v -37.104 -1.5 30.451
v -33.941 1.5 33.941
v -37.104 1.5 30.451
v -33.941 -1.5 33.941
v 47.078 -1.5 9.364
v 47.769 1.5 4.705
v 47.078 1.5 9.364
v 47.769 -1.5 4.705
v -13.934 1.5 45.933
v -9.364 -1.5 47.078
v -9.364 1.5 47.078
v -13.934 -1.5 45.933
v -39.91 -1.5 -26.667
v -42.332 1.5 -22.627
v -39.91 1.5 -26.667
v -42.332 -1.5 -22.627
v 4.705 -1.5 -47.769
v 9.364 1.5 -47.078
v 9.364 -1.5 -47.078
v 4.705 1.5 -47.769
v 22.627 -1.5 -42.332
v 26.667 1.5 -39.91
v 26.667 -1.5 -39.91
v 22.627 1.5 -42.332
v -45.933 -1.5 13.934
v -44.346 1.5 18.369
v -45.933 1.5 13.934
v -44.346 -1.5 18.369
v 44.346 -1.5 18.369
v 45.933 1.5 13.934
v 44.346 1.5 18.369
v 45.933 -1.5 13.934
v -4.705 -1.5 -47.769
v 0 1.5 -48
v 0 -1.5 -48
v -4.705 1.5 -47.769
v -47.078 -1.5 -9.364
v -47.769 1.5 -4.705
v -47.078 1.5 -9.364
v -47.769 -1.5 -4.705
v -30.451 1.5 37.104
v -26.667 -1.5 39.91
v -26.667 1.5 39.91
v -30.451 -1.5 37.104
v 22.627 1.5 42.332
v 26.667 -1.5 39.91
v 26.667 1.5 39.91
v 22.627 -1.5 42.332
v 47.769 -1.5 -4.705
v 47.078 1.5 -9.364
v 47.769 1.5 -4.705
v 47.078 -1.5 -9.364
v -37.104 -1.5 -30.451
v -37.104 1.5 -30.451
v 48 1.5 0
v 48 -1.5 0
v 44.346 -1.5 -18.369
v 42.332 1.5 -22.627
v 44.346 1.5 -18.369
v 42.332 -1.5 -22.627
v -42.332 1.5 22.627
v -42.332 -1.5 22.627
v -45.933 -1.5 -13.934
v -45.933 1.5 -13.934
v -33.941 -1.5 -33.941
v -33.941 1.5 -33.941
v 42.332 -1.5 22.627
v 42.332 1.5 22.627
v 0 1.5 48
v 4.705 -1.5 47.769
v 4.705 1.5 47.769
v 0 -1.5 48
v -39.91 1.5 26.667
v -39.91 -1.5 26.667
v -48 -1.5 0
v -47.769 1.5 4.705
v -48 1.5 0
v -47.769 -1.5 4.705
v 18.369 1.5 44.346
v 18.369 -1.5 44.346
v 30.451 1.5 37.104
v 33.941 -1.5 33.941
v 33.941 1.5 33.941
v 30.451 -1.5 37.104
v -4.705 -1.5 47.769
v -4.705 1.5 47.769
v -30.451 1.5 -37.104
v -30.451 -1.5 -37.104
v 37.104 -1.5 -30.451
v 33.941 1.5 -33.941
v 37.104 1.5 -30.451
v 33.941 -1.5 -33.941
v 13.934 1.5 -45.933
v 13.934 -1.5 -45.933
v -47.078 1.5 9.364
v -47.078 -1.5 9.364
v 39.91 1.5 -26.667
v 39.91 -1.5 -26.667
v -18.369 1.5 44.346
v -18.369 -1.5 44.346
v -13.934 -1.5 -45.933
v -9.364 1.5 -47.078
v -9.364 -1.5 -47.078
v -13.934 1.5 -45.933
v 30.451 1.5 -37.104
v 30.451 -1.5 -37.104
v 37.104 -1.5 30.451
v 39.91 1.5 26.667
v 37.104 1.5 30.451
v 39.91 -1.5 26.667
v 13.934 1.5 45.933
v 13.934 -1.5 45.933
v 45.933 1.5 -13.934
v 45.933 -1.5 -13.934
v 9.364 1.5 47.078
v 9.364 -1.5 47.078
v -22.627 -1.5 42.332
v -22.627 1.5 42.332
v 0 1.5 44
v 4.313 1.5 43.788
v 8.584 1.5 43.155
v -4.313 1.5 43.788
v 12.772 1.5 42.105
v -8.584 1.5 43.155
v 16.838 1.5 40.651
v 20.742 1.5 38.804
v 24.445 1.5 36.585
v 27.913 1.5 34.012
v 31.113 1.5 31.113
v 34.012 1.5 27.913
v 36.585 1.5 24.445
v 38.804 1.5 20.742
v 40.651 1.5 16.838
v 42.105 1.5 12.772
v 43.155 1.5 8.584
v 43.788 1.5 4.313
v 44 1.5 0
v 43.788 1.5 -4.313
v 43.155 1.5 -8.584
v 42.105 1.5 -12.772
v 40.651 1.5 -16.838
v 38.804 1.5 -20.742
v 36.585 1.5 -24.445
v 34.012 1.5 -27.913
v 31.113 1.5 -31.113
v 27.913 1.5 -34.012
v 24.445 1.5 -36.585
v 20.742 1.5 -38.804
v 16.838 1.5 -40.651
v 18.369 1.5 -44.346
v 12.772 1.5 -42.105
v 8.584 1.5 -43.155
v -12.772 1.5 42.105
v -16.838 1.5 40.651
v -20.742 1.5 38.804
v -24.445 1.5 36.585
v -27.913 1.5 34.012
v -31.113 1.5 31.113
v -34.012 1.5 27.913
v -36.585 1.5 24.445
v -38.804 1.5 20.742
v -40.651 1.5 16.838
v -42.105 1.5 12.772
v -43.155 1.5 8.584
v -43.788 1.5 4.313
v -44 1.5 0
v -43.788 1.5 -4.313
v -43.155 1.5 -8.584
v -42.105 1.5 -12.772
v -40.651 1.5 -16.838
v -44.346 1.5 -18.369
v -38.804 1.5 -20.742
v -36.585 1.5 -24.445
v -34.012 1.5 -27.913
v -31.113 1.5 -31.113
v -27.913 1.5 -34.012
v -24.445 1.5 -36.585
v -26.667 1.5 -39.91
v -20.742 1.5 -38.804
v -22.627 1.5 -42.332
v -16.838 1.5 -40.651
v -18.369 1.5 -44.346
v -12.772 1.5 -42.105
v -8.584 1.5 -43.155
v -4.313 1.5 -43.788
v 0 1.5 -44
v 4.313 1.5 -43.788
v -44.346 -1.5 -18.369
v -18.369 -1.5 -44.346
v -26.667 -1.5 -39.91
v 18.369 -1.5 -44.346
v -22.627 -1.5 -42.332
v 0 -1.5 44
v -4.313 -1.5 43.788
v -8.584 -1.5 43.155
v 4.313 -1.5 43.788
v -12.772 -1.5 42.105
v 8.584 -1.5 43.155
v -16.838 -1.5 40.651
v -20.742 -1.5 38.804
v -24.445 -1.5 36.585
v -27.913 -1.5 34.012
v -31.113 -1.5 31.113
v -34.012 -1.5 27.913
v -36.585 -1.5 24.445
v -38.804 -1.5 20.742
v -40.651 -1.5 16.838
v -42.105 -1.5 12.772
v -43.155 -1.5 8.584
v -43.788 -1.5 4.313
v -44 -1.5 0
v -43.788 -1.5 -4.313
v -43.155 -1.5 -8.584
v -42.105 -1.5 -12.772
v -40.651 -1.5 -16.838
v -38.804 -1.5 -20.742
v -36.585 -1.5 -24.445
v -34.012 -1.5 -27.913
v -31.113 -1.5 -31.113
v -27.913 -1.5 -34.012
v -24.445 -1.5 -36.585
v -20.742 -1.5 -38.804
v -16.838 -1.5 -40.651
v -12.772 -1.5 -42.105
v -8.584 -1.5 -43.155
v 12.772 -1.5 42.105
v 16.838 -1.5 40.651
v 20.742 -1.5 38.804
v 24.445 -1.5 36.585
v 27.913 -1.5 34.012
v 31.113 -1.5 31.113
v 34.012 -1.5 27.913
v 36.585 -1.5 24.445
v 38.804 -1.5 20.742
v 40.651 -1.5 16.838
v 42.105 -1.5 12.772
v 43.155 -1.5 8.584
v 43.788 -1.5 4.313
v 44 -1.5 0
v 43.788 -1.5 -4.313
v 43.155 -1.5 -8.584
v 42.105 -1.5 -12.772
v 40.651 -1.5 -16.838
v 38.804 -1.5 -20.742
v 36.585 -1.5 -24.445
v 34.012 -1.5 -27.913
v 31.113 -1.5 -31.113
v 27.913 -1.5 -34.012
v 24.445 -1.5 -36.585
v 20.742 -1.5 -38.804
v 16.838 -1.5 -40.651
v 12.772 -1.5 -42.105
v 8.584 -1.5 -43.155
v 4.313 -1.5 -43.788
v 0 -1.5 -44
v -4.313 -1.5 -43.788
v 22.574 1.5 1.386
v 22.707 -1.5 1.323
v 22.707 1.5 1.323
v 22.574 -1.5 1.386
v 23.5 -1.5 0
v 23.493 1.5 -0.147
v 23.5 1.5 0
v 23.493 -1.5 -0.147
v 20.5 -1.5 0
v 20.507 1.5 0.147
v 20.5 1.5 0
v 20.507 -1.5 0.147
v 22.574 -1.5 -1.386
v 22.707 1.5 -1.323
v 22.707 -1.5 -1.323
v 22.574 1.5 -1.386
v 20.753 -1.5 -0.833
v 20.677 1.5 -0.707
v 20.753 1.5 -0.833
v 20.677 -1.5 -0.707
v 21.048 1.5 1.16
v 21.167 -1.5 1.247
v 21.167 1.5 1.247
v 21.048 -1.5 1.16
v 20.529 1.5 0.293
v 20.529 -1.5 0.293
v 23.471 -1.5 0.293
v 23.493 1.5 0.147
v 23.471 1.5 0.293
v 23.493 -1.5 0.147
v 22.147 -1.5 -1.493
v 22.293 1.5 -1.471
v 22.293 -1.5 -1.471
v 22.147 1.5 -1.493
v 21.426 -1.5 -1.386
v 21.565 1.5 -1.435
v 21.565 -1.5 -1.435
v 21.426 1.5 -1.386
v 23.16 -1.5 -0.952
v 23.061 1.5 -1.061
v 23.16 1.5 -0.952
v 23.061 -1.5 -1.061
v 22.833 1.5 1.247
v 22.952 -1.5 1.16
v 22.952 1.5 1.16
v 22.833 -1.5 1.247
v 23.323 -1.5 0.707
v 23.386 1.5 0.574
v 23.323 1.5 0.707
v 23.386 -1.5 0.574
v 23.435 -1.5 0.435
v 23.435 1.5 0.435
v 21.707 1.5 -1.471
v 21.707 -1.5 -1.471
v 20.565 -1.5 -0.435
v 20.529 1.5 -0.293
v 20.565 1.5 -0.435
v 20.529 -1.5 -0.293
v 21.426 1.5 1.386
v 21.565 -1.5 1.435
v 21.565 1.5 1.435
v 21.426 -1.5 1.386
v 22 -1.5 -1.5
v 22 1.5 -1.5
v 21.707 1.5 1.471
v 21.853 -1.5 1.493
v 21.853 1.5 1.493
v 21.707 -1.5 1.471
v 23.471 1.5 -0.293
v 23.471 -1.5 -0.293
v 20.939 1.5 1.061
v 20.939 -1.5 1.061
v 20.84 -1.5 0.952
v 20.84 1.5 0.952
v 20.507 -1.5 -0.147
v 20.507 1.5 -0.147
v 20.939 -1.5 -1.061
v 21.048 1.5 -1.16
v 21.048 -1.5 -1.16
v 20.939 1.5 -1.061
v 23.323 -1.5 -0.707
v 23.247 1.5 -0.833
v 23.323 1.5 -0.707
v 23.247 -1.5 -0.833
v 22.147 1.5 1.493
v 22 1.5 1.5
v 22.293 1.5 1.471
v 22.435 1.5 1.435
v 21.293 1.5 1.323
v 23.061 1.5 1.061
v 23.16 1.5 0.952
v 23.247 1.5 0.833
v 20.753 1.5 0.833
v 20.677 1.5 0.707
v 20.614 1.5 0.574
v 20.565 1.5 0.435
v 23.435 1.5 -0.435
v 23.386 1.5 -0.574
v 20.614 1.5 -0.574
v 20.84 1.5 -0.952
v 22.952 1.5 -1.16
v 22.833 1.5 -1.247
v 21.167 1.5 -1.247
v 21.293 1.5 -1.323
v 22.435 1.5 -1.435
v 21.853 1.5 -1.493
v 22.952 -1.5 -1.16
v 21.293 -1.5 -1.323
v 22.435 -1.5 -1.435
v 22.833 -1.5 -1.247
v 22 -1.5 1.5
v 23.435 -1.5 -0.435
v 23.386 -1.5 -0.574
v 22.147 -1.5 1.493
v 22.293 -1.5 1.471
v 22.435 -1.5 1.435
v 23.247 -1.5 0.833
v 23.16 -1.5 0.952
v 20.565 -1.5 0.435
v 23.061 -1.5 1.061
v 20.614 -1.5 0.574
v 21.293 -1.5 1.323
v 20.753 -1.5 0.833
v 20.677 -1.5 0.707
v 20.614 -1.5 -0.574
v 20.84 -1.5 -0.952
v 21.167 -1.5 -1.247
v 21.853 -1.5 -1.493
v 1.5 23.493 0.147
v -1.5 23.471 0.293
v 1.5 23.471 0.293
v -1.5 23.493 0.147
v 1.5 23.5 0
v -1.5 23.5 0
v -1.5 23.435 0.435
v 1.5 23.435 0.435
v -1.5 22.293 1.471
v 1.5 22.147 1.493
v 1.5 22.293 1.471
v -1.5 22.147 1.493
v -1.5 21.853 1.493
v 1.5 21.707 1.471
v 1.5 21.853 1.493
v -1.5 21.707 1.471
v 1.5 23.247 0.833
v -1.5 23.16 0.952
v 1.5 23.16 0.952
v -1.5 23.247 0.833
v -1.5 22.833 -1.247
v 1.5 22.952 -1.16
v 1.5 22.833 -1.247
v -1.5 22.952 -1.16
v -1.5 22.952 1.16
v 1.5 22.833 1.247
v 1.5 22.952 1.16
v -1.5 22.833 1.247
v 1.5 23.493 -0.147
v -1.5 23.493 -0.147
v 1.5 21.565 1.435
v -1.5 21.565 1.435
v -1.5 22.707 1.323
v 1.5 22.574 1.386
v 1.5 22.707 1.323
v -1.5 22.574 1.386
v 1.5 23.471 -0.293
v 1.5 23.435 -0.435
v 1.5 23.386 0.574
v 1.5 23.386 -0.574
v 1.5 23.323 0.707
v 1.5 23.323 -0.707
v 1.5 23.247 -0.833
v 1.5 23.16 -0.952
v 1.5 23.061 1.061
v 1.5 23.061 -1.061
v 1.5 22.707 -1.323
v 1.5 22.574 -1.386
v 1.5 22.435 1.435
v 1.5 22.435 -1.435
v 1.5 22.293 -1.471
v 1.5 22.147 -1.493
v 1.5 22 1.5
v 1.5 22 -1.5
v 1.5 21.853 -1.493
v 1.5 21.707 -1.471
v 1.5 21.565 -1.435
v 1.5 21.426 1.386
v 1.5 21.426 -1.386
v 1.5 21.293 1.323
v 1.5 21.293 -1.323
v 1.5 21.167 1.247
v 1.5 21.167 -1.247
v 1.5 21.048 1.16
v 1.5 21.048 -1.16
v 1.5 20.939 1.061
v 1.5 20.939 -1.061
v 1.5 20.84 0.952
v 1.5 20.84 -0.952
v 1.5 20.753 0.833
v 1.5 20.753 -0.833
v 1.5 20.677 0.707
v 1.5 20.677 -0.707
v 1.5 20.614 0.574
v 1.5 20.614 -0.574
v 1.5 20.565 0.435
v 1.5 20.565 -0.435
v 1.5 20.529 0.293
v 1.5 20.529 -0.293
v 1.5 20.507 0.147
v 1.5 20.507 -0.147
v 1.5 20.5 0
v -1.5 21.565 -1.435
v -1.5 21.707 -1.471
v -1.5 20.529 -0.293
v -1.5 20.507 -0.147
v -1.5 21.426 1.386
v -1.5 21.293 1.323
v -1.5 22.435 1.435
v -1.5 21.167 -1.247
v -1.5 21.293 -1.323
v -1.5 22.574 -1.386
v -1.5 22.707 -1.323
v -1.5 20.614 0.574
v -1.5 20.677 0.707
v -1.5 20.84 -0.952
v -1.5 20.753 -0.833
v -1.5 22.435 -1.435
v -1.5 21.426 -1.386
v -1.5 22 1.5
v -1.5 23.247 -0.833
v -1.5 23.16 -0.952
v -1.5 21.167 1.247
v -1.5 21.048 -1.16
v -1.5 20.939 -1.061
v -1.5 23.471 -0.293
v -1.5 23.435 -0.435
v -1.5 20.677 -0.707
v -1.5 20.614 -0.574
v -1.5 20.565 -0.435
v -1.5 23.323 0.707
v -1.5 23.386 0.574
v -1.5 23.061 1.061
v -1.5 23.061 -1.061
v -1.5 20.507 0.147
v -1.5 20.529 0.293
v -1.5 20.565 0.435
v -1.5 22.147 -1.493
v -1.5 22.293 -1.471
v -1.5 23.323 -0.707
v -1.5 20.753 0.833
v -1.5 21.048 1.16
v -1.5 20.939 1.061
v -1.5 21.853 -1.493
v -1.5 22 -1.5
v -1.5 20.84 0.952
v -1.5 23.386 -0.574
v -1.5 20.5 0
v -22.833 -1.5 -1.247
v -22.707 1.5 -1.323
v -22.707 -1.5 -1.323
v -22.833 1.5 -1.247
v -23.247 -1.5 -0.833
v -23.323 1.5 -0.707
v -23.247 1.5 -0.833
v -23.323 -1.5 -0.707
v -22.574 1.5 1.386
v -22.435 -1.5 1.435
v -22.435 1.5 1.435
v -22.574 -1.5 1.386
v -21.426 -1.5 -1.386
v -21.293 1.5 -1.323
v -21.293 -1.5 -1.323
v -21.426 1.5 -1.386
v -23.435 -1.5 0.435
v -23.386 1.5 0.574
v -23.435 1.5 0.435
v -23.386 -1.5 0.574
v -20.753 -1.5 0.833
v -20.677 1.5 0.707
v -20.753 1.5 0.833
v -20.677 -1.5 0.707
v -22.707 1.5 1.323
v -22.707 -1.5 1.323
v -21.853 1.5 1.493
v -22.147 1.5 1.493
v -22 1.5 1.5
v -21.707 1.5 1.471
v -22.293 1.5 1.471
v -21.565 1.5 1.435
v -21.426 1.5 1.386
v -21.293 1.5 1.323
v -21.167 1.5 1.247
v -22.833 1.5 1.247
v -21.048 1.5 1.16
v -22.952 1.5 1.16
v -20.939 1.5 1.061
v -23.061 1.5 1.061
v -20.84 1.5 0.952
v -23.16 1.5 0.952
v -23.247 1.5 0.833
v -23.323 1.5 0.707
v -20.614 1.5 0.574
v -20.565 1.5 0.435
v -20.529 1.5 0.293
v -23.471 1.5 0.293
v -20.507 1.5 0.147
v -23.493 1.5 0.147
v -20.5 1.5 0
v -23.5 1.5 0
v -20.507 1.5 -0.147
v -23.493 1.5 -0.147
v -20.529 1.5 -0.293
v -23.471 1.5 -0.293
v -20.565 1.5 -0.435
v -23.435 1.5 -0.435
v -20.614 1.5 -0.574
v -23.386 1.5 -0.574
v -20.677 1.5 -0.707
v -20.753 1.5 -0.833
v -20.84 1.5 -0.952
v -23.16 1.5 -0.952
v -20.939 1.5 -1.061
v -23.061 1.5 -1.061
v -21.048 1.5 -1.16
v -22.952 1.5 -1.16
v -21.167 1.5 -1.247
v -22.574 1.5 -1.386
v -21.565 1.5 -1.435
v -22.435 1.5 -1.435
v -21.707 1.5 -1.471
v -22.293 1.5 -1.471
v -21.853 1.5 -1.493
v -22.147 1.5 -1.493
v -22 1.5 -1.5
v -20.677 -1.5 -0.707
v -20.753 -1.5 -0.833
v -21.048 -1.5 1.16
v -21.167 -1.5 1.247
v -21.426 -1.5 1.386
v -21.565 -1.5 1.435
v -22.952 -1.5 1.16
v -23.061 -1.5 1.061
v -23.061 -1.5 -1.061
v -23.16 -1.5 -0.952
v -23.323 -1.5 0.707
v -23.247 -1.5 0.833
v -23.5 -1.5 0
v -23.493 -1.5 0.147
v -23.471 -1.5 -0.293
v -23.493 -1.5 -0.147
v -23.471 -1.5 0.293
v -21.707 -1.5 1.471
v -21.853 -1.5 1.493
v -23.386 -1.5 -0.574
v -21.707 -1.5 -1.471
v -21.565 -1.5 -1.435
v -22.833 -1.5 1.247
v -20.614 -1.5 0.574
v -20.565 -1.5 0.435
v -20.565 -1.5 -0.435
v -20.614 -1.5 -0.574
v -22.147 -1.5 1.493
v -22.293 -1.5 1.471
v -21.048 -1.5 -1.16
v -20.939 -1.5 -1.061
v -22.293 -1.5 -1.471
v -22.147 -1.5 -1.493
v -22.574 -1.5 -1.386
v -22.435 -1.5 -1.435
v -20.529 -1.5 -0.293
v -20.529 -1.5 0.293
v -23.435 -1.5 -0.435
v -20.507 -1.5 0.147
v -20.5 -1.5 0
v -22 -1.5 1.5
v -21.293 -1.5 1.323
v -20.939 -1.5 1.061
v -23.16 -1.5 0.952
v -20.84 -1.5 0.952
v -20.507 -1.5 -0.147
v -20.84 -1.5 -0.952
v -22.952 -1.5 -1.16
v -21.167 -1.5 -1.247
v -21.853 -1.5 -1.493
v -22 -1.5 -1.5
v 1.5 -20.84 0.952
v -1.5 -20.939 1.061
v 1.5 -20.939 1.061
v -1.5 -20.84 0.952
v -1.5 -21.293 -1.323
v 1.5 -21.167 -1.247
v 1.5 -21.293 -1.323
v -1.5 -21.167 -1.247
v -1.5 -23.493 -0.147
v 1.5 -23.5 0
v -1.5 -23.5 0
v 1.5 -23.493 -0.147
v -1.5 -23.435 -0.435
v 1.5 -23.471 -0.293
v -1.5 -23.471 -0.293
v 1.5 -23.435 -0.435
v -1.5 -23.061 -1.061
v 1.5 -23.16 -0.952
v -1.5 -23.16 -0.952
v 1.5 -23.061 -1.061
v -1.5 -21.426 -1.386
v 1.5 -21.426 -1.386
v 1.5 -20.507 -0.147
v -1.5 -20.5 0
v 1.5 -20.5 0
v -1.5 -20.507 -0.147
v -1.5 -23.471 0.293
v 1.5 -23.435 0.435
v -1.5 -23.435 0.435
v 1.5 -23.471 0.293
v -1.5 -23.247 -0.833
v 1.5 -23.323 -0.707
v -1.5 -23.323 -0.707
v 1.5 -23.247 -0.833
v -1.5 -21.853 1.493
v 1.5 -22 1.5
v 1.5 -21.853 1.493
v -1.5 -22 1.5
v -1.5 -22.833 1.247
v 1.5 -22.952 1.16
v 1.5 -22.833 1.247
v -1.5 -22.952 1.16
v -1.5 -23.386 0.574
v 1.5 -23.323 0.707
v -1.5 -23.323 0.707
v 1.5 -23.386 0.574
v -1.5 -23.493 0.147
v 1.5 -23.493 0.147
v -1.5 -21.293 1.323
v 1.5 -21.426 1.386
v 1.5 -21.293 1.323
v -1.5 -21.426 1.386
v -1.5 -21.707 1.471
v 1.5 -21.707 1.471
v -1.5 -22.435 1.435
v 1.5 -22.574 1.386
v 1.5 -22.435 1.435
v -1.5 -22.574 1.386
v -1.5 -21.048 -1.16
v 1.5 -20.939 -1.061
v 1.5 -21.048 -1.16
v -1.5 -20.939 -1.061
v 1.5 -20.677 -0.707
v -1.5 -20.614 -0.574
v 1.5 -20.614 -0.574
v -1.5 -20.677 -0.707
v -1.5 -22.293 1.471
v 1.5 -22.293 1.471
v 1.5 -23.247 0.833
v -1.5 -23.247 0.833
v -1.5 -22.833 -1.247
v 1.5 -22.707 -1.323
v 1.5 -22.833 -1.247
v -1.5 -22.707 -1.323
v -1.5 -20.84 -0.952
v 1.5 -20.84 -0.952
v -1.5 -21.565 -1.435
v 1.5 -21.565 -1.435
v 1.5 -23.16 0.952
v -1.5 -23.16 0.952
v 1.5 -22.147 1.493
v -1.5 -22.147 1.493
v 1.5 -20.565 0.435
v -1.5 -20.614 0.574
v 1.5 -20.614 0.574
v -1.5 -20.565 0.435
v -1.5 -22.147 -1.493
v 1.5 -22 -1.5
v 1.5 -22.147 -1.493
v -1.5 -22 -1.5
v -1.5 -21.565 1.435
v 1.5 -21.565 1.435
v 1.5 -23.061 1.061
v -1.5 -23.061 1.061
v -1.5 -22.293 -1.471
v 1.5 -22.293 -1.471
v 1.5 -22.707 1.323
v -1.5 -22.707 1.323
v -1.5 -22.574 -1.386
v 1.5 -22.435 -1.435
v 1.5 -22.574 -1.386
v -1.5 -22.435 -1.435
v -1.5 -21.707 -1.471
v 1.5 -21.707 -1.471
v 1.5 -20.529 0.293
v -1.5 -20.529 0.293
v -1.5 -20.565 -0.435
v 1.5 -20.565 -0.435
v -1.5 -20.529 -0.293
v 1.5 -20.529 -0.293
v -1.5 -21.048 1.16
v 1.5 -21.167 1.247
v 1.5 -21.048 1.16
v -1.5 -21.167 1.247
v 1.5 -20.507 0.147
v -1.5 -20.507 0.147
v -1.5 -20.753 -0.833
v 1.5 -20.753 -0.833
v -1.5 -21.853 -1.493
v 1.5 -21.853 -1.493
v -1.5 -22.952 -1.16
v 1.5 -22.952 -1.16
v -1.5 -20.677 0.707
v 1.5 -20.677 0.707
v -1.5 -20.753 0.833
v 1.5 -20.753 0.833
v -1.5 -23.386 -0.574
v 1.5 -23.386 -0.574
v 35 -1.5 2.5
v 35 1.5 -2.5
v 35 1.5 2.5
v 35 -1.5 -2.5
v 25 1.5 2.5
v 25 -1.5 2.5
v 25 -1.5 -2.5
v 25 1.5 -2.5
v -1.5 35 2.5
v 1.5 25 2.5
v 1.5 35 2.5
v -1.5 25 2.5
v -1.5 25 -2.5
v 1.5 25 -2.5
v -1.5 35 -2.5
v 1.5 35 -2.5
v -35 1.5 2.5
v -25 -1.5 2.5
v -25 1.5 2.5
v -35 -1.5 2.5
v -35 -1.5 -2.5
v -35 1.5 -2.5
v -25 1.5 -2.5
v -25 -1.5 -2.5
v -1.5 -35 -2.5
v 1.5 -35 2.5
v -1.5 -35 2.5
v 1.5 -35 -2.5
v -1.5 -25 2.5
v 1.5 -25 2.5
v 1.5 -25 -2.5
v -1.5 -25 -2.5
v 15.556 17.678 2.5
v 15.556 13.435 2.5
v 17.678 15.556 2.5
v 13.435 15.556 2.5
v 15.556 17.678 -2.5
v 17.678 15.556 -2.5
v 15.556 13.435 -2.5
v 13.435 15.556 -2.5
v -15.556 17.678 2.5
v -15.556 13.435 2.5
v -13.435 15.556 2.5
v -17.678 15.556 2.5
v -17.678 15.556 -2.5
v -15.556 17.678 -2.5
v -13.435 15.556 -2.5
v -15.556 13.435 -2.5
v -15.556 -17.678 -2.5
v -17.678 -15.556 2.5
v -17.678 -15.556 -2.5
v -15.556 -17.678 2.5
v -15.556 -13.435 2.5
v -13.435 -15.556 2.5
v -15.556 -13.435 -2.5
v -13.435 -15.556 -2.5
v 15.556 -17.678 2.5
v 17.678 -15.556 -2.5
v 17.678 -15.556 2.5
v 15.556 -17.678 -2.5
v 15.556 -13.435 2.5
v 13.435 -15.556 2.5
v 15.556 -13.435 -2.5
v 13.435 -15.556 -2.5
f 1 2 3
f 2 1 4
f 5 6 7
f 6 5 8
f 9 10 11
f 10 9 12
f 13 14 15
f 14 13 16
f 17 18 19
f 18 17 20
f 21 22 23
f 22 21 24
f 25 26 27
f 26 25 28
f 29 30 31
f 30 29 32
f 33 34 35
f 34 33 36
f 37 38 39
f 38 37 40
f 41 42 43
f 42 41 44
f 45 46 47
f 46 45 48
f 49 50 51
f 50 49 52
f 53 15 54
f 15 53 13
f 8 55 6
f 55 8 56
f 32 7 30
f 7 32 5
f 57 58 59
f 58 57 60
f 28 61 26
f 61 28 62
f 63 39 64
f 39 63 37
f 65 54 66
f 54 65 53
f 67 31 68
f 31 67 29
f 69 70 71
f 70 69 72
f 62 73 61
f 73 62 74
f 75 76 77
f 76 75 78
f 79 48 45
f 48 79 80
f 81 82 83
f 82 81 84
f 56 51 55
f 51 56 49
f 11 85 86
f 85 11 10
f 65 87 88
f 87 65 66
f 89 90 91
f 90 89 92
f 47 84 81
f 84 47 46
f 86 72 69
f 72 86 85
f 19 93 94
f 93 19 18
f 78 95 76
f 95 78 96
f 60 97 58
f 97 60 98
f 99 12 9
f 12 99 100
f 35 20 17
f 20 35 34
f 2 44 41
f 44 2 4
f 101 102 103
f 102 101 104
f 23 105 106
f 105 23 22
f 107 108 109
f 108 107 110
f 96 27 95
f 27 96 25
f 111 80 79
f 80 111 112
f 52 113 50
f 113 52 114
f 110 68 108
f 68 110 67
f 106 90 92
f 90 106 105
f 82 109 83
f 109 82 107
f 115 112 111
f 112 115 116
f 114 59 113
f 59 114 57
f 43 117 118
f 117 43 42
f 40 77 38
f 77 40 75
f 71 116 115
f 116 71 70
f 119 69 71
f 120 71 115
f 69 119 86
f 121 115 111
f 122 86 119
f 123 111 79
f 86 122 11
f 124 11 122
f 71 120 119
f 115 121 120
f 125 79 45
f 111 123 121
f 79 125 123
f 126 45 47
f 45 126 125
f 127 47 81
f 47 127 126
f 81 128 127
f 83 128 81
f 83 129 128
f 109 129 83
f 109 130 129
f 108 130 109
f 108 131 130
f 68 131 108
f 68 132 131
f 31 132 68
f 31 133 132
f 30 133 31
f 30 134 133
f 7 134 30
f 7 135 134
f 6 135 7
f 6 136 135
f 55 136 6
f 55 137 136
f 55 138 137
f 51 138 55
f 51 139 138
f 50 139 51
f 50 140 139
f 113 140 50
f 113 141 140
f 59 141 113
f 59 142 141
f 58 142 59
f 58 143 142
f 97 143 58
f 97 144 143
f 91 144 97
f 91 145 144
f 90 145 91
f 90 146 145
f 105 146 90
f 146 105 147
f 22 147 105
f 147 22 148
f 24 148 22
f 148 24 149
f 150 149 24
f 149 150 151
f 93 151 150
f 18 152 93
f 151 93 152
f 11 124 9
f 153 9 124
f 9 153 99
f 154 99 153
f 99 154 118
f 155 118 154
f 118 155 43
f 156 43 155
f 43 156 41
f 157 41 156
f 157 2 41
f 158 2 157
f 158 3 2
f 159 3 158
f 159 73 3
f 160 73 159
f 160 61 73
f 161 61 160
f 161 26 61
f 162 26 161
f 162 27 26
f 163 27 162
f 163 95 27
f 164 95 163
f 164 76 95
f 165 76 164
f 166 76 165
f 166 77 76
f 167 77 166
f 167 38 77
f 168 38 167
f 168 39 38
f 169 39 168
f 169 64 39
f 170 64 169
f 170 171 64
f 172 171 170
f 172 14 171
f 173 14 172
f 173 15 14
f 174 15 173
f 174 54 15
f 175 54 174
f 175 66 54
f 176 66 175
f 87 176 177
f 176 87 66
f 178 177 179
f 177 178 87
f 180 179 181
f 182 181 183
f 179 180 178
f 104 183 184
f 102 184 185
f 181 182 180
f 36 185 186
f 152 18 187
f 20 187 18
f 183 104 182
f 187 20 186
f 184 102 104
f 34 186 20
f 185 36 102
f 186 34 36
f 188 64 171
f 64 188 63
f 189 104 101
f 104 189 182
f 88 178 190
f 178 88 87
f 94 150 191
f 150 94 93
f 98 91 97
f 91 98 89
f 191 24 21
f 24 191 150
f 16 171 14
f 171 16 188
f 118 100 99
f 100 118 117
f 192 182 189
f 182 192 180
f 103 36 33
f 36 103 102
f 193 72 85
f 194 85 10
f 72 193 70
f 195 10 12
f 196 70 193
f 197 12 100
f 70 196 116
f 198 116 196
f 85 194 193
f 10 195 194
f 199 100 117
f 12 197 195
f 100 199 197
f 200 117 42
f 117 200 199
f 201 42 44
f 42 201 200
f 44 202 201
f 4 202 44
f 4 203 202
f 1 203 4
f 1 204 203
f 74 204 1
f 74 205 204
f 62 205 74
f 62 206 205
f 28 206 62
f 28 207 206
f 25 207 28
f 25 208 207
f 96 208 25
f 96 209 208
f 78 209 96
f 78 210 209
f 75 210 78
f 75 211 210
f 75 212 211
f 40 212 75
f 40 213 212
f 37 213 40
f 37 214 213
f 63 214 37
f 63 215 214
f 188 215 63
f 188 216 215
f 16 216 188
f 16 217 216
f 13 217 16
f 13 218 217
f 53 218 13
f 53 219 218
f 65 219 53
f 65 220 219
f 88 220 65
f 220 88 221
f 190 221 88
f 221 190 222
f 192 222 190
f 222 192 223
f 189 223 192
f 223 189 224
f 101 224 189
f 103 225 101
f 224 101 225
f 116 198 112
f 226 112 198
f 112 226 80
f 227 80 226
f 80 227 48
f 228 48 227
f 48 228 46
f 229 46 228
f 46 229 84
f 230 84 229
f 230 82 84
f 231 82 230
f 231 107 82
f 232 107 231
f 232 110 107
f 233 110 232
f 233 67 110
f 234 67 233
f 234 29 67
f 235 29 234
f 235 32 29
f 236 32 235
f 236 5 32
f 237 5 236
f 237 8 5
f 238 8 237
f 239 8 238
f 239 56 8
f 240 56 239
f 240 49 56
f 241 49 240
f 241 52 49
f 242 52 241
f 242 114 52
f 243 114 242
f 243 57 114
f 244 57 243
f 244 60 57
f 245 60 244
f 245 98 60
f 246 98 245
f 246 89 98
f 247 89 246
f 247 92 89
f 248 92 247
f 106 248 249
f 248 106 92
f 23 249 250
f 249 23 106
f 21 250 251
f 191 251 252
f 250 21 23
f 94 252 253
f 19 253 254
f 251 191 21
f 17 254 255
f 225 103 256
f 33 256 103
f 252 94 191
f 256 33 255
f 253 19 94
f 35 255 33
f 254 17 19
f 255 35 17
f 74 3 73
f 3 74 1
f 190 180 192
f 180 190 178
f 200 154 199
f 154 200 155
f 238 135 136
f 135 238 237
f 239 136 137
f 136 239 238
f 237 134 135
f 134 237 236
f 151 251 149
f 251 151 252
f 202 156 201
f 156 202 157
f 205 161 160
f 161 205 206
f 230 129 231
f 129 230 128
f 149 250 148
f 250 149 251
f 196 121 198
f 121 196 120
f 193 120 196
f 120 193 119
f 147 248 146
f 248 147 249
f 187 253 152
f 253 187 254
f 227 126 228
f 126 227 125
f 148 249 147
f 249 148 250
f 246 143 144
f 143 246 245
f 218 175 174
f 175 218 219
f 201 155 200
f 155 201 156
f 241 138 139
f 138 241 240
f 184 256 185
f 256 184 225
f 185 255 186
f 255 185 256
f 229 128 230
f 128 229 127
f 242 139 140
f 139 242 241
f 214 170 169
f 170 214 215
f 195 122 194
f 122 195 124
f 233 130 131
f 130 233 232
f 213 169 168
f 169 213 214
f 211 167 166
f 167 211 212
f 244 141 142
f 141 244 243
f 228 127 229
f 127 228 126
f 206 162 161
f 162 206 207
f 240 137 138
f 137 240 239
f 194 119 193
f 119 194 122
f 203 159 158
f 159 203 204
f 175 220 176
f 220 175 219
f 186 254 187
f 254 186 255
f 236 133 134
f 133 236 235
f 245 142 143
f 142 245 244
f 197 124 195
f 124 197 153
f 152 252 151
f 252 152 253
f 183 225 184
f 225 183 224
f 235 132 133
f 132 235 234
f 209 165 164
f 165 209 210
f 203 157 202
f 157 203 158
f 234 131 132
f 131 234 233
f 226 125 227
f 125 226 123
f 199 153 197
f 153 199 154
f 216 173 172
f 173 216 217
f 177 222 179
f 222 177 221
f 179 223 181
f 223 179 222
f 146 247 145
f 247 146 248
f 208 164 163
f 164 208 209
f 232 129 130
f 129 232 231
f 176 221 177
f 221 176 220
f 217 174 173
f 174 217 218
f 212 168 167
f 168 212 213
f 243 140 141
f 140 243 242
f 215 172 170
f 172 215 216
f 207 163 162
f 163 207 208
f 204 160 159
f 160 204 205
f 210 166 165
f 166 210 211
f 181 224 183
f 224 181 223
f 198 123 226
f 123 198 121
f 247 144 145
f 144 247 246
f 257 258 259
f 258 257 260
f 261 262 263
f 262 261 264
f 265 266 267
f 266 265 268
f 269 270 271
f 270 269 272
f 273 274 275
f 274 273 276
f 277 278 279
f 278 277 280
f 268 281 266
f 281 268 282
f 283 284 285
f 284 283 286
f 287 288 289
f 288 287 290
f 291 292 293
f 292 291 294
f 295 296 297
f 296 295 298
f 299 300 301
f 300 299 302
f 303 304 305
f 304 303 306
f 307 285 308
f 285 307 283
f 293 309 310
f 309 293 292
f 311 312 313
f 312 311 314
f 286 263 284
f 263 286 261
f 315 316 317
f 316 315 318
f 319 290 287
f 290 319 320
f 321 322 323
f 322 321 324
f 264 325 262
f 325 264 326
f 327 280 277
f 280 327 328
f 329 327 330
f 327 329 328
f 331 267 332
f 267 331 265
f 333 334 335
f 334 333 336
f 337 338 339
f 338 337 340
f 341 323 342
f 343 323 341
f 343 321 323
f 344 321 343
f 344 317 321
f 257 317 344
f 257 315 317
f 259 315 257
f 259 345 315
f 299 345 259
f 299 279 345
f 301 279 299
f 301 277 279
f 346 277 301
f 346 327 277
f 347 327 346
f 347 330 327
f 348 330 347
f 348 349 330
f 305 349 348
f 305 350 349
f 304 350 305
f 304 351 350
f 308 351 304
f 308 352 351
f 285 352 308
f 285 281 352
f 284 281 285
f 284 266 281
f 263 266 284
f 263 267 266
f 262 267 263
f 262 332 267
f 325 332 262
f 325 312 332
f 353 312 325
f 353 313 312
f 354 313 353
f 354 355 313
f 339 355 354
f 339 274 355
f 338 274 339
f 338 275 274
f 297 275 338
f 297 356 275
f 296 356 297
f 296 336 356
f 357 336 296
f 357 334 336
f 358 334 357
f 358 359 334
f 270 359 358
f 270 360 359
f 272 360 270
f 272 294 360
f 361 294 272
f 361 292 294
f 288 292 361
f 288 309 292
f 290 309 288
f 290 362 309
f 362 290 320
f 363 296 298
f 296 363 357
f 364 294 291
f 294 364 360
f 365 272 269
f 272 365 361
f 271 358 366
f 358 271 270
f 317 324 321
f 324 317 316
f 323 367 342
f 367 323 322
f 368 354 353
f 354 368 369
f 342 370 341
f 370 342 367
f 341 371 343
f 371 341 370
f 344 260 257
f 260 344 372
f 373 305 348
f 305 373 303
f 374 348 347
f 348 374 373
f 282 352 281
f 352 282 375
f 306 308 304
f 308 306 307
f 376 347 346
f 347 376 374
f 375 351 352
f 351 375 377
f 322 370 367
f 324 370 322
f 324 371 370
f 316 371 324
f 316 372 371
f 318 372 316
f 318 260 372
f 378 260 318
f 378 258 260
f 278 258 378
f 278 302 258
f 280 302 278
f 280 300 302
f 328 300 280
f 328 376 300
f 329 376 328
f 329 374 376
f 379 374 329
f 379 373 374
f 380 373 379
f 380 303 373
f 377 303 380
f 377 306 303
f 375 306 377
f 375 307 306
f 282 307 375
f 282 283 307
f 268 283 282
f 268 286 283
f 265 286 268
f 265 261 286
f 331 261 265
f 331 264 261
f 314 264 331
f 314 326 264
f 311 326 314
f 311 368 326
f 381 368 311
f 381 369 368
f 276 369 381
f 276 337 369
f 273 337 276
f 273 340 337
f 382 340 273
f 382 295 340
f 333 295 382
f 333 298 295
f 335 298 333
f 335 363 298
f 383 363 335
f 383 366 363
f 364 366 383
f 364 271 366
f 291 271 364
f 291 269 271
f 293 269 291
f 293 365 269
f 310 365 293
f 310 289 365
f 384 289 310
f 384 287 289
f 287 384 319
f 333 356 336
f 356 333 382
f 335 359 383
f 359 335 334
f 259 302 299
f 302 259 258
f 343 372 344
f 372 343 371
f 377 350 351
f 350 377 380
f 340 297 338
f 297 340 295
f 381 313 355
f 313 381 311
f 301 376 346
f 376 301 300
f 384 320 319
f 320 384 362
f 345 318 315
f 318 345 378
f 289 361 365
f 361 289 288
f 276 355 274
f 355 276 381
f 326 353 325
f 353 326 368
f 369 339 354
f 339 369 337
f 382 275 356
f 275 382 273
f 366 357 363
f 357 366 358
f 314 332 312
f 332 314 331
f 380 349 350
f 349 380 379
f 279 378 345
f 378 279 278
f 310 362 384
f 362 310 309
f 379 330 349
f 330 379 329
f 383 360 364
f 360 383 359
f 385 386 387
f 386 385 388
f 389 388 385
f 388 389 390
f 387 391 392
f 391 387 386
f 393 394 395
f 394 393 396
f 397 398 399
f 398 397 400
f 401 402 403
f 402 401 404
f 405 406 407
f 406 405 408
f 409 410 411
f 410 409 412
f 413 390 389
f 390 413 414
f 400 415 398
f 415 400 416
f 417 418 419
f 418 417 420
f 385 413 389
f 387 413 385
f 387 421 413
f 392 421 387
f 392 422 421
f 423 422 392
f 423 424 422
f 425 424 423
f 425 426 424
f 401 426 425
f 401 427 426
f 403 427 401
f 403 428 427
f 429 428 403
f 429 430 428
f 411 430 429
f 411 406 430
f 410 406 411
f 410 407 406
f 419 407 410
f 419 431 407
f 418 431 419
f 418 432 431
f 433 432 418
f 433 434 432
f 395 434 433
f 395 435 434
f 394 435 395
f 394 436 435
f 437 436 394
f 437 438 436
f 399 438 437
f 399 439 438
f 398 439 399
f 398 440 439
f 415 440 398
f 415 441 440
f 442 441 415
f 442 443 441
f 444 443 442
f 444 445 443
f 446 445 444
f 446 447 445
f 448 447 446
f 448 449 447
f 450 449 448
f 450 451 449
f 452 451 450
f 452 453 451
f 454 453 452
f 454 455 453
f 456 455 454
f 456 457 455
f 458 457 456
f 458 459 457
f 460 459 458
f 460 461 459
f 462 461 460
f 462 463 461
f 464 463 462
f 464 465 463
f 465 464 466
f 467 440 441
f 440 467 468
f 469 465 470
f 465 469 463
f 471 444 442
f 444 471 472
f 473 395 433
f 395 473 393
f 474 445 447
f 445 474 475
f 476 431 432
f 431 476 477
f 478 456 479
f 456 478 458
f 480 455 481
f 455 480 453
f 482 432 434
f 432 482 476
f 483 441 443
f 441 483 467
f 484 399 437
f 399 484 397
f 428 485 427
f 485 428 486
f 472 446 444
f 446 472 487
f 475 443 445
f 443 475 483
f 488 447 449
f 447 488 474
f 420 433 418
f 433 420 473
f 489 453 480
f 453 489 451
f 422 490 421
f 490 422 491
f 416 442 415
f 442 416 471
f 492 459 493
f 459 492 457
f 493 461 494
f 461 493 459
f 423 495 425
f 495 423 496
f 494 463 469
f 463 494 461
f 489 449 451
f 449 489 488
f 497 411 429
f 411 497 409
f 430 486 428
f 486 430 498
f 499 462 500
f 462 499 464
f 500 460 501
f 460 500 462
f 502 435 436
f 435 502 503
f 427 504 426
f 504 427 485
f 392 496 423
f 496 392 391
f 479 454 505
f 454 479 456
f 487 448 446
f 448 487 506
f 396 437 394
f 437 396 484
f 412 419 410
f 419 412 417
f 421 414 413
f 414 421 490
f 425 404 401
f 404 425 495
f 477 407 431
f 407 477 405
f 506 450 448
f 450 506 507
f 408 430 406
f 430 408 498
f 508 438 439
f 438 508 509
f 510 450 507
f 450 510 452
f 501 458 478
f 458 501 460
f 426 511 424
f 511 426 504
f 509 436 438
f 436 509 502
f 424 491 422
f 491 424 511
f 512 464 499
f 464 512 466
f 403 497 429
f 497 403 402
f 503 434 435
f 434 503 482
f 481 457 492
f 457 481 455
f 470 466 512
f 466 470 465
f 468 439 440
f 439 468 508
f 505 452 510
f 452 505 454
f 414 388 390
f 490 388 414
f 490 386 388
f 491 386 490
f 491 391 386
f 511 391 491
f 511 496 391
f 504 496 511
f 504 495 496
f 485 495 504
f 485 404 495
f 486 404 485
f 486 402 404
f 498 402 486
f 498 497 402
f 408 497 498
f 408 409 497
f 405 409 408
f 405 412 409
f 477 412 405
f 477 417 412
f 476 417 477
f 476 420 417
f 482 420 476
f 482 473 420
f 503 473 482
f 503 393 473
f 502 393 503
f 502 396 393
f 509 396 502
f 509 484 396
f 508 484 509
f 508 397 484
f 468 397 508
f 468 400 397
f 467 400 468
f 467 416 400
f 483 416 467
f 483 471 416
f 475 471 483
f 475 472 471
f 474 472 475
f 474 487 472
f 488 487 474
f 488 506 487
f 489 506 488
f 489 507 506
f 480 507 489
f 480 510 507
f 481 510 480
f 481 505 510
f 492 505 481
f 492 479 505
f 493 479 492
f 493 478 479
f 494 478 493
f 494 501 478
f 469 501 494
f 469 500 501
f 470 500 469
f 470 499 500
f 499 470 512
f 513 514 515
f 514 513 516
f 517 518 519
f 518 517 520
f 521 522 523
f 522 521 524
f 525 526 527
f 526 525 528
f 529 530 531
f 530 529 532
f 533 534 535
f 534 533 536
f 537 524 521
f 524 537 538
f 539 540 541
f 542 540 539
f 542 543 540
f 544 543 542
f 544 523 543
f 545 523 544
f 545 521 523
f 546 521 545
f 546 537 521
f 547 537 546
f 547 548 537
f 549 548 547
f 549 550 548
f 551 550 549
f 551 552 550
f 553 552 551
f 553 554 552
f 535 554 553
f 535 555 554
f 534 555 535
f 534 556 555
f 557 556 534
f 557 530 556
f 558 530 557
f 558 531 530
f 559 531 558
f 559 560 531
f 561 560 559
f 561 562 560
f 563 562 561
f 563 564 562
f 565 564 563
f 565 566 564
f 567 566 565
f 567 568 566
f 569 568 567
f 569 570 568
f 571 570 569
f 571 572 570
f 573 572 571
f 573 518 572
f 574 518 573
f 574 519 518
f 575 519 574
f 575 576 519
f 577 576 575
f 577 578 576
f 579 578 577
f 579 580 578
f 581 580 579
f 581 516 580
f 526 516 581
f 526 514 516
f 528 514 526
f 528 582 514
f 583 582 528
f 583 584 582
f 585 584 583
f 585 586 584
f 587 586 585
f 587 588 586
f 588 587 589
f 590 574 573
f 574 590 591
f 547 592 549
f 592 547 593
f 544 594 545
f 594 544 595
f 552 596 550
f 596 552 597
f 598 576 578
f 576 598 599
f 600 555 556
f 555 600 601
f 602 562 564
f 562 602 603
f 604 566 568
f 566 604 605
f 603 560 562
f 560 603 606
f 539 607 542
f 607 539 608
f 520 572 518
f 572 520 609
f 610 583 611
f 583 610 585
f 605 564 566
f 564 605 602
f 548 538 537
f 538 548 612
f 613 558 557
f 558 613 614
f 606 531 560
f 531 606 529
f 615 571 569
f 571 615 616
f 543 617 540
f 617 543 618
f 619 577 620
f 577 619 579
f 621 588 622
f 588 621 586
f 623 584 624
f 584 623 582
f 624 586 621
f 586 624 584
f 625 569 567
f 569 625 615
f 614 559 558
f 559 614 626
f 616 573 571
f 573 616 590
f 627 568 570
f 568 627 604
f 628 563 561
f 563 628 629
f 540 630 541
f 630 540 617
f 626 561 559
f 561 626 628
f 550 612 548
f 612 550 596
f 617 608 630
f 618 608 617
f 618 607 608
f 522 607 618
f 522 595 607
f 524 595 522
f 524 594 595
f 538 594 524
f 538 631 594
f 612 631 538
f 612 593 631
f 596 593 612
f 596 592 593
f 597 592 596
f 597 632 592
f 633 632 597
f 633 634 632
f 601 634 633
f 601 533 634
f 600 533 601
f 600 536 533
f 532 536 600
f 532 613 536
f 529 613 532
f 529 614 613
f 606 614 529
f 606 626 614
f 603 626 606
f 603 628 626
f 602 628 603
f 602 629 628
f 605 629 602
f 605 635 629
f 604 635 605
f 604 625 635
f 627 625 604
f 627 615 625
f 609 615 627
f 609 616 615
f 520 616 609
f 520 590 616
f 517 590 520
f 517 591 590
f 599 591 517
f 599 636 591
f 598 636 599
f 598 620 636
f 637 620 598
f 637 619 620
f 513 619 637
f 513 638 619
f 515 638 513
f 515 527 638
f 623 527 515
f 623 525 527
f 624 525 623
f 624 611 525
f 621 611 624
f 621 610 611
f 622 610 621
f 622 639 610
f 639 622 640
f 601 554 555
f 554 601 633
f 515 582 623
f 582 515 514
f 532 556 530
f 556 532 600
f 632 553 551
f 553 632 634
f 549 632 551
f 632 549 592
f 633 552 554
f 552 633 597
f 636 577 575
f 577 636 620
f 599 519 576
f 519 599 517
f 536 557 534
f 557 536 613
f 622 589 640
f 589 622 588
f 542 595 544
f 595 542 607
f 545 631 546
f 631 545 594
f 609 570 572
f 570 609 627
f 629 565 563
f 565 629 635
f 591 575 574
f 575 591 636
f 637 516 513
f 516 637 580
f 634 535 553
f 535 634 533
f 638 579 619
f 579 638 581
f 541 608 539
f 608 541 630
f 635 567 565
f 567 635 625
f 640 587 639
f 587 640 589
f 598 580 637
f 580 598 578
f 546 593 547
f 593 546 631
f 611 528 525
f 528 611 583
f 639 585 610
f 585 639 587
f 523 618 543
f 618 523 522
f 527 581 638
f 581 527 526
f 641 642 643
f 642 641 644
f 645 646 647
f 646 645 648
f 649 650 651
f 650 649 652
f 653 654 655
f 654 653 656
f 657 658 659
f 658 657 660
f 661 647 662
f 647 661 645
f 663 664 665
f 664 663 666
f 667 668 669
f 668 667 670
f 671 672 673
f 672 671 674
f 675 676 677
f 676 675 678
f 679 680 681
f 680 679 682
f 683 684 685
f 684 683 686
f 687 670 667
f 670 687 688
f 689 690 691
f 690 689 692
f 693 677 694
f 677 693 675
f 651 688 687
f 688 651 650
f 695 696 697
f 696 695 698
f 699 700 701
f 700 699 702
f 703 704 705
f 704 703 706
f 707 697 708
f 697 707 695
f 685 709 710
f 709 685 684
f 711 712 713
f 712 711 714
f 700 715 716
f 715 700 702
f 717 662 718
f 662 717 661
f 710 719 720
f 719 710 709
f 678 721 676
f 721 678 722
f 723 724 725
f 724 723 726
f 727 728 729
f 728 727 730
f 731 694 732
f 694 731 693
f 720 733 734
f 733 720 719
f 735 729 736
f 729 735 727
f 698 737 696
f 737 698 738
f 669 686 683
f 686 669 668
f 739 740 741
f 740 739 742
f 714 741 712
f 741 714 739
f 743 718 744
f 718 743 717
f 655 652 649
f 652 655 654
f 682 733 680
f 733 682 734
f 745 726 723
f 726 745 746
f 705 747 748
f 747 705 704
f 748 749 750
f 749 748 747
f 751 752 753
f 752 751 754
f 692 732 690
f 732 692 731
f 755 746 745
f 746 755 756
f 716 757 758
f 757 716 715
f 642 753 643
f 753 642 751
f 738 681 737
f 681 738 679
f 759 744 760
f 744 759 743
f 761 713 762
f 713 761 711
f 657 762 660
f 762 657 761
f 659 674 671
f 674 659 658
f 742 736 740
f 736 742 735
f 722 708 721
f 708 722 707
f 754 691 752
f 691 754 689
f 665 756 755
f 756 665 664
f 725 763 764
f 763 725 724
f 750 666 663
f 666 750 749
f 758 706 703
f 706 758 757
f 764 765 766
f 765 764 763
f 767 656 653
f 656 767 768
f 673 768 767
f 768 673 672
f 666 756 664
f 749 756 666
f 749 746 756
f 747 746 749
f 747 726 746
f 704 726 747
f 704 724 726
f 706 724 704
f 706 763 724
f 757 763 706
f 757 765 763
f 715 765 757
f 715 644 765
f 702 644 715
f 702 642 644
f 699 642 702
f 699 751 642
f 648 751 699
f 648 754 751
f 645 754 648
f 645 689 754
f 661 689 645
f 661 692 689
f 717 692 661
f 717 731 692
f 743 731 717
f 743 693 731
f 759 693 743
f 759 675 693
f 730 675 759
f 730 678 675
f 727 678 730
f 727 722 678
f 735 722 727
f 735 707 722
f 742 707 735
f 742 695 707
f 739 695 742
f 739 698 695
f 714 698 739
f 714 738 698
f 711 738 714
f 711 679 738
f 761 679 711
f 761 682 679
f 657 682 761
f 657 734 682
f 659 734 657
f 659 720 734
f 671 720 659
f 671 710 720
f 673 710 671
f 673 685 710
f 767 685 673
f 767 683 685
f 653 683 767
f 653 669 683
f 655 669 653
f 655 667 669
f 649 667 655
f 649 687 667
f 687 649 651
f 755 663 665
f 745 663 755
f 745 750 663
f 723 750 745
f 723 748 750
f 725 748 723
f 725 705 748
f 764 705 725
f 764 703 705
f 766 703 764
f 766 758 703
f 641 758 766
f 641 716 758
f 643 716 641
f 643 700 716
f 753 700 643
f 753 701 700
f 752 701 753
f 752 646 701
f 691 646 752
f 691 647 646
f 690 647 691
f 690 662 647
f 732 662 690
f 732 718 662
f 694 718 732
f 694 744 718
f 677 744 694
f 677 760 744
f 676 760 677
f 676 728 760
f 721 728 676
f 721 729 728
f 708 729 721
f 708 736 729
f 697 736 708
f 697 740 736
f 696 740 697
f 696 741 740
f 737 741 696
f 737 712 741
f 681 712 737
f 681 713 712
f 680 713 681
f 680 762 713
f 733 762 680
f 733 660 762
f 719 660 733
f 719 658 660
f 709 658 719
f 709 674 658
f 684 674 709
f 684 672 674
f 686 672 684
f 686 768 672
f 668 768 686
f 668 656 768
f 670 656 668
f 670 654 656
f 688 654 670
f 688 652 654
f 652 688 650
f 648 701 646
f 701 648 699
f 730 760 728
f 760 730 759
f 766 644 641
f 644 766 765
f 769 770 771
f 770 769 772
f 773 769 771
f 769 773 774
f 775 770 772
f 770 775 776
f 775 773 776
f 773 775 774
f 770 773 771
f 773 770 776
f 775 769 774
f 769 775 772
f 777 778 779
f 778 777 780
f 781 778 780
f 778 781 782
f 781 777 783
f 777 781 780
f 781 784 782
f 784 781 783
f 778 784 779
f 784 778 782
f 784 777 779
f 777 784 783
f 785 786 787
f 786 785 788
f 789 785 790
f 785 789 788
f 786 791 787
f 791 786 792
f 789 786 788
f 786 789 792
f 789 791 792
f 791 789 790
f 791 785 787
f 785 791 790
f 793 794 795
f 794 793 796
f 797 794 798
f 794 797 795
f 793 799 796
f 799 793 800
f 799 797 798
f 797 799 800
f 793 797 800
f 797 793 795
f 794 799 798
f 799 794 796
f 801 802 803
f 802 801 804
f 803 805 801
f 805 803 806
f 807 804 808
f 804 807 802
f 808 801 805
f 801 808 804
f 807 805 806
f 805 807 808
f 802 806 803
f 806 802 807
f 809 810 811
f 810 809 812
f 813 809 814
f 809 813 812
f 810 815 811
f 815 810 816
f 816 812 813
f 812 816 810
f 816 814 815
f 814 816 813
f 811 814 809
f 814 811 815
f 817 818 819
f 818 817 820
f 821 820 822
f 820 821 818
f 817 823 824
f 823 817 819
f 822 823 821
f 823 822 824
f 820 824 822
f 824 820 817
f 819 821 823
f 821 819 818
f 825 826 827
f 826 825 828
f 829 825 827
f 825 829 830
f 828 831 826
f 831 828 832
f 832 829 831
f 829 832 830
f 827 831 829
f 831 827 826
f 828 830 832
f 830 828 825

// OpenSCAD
// 04_PropGuard.scad - 螺旋桨护圈（3寸桨）
// 内径90mm，适配3寸/3020桨
$fn = 64;
COLOR_FRAME  = [0.12, 0.12, 0.14];
COLOR_ORANGE = [0.90, 0.40, 0.02];

// 护圈环（torus近似：两个同心圆柱相减）
color(COLOR_FRAME)
rotate([90, 0, 0])
    difference() {
        cylinder(r=48, h=3, center=true);
        translate([0, 0, -2])
            cylinder(r=44, h=7, center=true);
    }

// 连接杆 x4
for (angle = [0, 90, 180, 270])
    rotate([0, 0, angle])
    translate([22, 0, 0])
        color(COLOR_FRAME)
        rotate([90, 0, 0])
            cylinder(r=1.5, h=3, center=true);

// 安装卡扣 x4
for (angle = [0, 90, 180, 270])
    rotate([0, 0, angle])
    translate([30, 0, 0])
        color(COLOR_ORANGE)
        cube([10, 3, 5], center=true);

// 加强肋 x4（护圈与连接杆之间）
for (angle = [0, 90, 180, 270])
    rotate([0, 0, angle + 45])
    translate([22, 0, 0])
        color(COLOR_FRAME)
        cube([3, 3, 5], center=true);
